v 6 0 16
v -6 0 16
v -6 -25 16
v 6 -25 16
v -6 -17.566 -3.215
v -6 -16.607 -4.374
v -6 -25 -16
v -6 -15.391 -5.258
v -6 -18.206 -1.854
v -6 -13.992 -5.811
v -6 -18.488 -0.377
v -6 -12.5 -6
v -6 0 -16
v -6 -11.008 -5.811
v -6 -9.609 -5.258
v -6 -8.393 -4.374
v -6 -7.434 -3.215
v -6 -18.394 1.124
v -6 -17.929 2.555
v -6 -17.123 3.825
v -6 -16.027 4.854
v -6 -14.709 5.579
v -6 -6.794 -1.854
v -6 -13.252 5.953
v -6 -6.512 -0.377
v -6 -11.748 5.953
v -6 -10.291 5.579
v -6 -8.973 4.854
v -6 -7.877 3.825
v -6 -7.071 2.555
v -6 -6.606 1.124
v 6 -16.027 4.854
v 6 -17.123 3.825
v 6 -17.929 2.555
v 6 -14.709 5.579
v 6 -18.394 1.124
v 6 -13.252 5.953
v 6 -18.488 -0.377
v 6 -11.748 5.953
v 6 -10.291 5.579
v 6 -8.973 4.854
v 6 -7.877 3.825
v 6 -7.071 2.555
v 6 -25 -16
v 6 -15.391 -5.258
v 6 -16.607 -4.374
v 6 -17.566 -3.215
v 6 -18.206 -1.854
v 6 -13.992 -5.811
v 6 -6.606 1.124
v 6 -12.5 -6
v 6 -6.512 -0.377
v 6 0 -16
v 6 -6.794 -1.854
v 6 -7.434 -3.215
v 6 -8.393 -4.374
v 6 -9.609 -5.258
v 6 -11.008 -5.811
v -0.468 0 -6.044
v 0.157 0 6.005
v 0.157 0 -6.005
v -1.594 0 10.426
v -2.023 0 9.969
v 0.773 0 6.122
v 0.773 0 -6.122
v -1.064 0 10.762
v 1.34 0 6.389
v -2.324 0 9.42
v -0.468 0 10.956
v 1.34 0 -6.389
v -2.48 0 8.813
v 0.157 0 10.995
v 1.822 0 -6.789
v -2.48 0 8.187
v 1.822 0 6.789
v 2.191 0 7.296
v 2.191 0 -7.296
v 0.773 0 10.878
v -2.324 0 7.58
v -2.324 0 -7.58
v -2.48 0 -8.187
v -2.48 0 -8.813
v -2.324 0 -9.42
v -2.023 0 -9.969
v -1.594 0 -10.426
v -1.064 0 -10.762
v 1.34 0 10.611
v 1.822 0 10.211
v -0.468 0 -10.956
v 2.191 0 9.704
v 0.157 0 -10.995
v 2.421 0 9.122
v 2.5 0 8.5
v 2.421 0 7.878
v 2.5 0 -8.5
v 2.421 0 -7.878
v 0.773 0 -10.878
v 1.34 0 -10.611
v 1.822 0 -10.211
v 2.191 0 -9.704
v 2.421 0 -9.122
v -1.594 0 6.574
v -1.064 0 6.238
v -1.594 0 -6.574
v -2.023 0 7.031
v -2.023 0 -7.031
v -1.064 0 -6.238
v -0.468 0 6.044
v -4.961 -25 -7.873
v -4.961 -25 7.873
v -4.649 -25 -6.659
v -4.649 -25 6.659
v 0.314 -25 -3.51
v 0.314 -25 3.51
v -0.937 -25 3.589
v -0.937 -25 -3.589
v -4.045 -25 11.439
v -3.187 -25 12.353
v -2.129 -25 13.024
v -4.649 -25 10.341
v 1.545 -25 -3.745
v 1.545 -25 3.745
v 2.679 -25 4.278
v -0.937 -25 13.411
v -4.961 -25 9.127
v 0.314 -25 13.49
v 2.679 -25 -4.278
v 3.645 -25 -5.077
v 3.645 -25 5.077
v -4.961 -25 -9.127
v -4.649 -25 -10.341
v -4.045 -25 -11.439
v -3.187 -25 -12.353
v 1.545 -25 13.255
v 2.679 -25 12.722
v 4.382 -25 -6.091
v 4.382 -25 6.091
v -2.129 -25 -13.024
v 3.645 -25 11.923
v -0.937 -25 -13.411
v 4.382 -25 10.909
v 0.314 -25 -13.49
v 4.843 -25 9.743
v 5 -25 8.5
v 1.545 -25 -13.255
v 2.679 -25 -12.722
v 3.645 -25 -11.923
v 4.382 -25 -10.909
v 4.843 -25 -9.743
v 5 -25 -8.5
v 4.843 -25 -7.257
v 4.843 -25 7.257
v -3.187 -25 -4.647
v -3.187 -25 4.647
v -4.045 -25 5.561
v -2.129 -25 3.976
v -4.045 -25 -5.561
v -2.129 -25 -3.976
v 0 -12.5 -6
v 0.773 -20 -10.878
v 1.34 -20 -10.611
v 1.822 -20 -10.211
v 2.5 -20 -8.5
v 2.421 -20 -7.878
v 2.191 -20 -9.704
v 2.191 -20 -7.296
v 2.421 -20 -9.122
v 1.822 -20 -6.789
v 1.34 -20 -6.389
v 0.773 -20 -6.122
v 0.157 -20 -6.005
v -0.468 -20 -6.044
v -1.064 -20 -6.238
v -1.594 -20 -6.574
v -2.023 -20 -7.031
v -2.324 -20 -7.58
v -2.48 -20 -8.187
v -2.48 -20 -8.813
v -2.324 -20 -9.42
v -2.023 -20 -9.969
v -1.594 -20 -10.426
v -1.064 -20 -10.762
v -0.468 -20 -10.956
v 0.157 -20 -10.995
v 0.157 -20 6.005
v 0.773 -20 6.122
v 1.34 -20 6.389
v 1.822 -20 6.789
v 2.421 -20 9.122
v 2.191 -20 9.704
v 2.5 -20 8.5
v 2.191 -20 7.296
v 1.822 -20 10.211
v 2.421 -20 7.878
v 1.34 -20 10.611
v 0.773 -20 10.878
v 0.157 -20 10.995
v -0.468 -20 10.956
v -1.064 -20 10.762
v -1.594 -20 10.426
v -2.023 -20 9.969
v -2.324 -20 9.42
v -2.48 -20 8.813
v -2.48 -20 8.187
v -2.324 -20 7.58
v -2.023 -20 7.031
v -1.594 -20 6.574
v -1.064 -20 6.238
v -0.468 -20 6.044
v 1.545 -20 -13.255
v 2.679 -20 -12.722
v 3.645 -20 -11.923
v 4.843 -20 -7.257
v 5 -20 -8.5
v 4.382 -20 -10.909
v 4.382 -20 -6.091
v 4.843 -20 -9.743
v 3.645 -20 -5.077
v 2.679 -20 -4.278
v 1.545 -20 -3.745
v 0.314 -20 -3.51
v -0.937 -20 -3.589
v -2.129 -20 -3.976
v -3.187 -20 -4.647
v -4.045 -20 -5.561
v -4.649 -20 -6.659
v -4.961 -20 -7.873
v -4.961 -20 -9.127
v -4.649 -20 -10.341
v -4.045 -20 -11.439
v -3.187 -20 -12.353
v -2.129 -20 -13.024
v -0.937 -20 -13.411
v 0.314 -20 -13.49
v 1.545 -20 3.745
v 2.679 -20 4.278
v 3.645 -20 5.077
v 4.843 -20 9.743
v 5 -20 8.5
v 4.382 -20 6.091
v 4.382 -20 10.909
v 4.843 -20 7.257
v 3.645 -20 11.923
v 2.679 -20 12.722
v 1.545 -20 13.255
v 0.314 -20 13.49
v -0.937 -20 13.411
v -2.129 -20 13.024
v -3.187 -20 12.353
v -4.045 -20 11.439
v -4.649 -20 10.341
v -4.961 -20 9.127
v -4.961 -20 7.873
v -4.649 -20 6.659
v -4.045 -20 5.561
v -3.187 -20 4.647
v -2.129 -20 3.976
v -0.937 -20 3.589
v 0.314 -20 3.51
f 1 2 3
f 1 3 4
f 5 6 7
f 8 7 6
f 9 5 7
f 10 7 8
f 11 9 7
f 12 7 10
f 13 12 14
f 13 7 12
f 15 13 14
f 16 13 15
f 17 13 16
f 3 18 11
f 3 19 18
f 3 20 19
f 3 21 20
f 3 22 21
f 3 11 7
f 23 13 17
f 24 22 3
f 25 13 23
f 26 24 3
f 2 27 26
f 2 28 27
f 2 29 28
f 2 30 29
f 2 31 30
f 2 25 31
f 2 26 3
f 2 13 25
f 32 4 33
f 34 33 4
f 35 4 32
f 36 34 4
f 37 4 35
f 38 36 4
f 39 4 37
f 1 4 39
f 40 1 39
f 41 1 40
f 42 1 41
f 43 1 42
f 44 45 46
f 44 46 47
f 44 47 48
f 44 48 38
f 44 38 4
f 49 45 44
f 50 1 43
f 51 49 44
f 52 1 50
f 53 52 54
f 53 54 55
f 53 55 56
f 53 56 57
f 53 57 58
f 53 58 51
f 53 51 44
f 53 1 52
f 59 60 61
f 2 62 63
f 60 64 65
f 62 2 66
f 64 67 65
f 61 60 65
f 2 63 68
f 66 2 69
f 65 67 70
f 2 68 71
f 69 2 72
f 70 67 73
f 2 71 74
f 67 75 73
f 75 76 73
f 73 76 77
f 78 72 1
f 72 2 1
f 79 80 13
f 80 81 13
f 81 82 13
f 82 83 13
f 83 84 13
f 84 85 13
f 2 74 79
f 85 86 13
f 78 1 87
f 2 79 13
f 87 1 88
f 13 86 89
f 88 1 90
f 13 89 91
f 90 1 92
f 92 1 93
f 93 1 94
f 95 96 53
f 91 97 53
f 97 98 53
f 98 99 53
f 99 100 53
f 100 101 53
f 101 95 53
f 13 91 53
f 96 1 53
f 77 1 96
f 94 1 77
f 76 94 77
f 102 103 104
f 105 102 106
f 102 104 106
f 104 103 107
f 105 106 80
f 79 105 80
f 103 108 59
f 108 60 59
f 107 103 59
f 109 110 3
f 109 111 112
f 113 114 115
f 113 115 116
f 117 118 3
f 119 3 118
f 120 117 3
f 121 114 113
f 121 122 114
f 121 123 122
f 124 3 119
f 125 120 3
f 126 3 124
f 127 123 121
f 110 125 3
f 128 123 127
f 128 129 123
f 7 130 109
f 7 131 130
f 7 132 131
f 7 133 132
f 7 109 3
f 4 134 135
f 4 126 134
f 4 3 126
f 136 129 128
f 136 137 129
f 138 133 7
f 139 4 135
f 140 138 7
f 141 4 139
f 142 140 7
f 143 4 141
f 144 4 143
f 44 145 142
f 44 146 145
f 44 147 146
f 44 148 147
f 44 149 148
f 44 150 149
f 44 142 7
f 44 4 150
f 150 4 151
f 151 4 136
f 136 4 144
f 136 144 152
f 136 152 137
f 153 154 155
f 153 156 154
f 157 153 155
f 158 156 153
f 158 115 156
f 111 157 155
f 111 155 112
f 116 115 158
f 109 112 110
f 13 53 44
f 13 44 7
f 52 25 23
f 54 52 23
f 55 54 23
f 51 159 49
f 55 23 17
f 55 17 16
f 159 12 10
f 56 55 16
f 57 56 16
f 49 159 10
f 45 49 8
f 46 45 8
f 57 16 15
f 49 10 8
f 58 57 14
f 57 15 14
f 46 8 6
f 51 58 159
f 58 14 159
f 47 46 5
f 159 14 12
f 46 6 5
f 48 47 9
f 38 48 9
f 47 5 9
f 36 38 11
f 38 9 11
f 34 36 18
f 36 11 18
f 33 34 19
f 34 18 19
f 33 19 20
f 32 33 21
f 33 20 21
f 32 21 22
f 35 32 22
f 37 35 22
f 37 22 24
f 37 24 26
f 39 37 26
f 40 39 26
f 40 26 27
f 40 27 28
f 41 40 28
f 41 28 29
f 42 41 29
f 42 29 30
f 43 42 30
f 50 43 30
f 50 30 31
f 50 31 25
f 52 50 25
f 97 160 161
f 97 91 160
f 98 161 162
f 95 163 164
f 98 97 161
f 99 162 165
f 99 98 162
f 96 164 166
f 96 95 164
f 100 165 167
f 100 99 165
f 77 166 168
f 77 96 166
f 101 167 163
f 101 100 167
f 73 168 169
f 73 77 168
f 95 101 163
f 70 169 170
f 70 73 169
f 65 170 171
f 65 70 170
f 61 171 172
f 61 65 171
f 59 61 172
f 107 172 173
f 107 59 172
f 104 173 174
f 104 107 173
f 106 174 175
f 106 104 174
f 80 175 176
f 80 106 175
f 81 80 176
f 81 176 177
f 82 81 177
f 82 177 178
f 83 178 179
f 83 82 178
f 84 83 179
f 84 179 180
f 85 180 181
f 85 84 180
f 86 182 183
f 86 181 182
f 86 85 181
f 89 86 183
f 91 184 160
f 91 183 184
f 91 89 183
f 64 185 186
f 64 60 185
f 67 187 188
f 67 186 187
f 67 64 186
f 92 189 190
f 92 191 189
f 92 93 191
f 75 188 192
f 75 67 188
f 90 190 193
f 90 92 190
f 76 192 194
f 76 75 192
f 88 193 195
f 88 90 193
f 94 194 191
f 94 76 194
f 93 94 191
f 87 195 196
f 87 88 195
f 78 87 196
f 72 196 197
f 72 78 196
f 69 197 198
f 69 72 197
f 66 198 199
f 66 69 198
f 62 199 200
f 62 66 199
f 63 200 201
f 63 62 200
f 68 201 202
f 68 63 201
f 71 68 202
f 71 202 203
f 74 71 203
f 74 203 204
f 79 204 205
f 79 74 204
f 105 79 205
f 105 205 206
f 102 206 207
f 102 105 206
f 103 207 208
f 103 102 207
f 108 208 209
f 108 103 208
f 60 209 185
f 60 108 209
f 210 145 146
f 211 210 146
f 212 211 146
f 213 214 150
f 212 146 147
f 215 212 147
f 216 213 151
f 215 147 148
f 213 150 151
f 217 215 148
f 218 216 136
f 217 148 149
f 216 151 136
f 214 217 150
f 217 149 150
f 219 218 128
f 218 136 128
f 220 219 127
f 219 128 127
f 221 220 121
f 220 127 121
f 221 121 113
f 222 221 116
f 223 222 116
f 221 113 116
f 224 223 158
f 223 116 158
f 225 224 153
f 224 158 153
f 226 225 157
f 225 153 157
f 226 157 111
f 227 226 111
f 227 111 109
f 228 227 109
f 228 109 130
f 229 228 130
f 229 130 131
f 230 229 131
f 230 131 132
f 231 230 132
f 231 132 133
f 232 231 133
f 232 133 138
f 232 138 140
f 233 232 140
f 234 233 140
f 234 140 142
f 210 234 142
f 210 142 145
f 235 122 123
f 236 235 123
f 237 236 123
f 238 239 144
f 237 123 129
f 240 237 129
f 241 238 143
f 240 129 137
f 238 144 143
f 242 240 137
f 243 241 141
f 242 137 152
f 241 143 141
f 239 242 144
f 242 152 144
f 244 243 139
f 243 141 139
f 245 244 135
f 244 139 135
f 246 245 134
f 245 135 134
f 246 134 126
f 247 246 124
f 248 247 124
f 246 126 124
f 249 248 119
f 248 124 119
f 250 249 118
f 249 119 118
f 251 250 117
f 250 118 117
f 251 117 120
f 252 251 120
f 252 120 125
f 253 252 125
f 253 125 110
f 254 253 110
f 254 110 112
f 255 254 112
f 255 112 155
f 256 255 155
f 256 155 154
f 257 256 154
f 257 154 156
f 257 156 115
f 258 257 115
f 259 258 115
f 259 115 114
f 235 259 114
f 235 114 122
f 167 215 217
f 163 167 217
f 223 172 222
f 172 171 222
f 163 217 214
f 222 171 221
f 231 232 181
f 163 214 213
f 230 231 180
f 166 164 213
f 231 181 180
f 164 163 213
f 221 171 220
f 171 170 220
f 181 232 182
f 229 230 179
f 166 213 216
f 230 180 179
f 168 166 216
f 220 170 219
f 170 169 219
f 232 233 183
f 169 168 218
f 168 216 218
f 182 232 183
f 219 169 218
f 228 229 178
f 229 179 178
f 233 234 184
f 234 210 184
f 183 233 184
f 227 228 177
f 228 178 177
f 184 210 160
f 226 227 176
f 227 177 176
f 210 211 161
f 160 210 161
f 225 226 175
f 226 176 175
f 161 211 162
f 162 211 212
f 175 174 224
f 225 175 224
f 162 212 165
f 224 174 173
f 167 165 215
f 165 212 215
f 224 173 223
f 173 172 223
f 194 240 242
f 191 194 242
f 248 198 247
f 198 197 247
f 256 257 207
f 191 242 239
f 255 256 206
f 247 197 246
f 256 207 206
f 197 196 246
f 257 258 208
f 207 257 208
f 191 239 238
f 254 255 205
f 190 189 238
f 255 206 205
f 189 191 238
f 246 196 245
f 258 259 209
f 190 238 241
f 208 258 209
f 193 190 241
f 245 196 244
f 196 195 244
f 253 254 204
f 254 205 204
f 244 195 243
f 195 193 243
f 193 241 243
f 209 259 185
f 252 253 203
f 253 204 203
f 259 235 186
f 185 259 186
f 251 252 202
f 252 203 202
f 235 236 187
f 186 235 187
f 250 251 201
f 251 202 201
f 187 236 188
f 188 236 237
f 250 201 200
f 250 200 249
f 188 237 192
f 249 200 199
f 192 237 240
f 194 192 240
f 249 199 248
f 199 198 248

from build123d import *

# Parameters (mm, degrees)
SKETCH_W        = 12
SKETCH_H        = 32
SKETCH_R        = 2.5
PAD_DEPTH       = 25
SKETCH001_R     = 6
POCKET_DEPTH    = 12
SKETCH002_R     = 5
POCKET001_DEPTH = 5


with BuildPart() as part:
    # Sketch → Pad (new body)
    with BuildSketch(Plane.XZ):
        Rectangle(SKETCH_W, SKETCH_H)
        with Locations((0, 8.5)):
            Circle(SKETCH_R, mode=Mode.SUBTRACT)
        with Locations((0, -8.5)):
            Circle(SKETCH_R, mode=Mode.SUBTRACT)
    extrude(amount=PAD_DEPTH)

    # Sketch001 → Pocket (cut)
    with BuildSketch(Plane(origin=(-6, 0, 0), x_dir=(0, 0, -1), z_dir=(-1, 0, 0))):
        with Locations((0, 12.5)):
            Circle(SKETCH001_R)
    extrude(amount=-POCKET_DEPTH, mode=Mode.SUBTRACT)

    # Sketch002 → Pocket001 (cut)
    with BuildSketch(Plane.XZ.offset(25)):
        with Locations((0, 8.5)):
            Circle(SKETCH002_R)
        with Locations((0, -8.5)):
            Circle(SKETCH002_R)
    extrude(amount=-POCKET001_DEPTH, mode=Mode.SUBTRACT)


solid = part.part
